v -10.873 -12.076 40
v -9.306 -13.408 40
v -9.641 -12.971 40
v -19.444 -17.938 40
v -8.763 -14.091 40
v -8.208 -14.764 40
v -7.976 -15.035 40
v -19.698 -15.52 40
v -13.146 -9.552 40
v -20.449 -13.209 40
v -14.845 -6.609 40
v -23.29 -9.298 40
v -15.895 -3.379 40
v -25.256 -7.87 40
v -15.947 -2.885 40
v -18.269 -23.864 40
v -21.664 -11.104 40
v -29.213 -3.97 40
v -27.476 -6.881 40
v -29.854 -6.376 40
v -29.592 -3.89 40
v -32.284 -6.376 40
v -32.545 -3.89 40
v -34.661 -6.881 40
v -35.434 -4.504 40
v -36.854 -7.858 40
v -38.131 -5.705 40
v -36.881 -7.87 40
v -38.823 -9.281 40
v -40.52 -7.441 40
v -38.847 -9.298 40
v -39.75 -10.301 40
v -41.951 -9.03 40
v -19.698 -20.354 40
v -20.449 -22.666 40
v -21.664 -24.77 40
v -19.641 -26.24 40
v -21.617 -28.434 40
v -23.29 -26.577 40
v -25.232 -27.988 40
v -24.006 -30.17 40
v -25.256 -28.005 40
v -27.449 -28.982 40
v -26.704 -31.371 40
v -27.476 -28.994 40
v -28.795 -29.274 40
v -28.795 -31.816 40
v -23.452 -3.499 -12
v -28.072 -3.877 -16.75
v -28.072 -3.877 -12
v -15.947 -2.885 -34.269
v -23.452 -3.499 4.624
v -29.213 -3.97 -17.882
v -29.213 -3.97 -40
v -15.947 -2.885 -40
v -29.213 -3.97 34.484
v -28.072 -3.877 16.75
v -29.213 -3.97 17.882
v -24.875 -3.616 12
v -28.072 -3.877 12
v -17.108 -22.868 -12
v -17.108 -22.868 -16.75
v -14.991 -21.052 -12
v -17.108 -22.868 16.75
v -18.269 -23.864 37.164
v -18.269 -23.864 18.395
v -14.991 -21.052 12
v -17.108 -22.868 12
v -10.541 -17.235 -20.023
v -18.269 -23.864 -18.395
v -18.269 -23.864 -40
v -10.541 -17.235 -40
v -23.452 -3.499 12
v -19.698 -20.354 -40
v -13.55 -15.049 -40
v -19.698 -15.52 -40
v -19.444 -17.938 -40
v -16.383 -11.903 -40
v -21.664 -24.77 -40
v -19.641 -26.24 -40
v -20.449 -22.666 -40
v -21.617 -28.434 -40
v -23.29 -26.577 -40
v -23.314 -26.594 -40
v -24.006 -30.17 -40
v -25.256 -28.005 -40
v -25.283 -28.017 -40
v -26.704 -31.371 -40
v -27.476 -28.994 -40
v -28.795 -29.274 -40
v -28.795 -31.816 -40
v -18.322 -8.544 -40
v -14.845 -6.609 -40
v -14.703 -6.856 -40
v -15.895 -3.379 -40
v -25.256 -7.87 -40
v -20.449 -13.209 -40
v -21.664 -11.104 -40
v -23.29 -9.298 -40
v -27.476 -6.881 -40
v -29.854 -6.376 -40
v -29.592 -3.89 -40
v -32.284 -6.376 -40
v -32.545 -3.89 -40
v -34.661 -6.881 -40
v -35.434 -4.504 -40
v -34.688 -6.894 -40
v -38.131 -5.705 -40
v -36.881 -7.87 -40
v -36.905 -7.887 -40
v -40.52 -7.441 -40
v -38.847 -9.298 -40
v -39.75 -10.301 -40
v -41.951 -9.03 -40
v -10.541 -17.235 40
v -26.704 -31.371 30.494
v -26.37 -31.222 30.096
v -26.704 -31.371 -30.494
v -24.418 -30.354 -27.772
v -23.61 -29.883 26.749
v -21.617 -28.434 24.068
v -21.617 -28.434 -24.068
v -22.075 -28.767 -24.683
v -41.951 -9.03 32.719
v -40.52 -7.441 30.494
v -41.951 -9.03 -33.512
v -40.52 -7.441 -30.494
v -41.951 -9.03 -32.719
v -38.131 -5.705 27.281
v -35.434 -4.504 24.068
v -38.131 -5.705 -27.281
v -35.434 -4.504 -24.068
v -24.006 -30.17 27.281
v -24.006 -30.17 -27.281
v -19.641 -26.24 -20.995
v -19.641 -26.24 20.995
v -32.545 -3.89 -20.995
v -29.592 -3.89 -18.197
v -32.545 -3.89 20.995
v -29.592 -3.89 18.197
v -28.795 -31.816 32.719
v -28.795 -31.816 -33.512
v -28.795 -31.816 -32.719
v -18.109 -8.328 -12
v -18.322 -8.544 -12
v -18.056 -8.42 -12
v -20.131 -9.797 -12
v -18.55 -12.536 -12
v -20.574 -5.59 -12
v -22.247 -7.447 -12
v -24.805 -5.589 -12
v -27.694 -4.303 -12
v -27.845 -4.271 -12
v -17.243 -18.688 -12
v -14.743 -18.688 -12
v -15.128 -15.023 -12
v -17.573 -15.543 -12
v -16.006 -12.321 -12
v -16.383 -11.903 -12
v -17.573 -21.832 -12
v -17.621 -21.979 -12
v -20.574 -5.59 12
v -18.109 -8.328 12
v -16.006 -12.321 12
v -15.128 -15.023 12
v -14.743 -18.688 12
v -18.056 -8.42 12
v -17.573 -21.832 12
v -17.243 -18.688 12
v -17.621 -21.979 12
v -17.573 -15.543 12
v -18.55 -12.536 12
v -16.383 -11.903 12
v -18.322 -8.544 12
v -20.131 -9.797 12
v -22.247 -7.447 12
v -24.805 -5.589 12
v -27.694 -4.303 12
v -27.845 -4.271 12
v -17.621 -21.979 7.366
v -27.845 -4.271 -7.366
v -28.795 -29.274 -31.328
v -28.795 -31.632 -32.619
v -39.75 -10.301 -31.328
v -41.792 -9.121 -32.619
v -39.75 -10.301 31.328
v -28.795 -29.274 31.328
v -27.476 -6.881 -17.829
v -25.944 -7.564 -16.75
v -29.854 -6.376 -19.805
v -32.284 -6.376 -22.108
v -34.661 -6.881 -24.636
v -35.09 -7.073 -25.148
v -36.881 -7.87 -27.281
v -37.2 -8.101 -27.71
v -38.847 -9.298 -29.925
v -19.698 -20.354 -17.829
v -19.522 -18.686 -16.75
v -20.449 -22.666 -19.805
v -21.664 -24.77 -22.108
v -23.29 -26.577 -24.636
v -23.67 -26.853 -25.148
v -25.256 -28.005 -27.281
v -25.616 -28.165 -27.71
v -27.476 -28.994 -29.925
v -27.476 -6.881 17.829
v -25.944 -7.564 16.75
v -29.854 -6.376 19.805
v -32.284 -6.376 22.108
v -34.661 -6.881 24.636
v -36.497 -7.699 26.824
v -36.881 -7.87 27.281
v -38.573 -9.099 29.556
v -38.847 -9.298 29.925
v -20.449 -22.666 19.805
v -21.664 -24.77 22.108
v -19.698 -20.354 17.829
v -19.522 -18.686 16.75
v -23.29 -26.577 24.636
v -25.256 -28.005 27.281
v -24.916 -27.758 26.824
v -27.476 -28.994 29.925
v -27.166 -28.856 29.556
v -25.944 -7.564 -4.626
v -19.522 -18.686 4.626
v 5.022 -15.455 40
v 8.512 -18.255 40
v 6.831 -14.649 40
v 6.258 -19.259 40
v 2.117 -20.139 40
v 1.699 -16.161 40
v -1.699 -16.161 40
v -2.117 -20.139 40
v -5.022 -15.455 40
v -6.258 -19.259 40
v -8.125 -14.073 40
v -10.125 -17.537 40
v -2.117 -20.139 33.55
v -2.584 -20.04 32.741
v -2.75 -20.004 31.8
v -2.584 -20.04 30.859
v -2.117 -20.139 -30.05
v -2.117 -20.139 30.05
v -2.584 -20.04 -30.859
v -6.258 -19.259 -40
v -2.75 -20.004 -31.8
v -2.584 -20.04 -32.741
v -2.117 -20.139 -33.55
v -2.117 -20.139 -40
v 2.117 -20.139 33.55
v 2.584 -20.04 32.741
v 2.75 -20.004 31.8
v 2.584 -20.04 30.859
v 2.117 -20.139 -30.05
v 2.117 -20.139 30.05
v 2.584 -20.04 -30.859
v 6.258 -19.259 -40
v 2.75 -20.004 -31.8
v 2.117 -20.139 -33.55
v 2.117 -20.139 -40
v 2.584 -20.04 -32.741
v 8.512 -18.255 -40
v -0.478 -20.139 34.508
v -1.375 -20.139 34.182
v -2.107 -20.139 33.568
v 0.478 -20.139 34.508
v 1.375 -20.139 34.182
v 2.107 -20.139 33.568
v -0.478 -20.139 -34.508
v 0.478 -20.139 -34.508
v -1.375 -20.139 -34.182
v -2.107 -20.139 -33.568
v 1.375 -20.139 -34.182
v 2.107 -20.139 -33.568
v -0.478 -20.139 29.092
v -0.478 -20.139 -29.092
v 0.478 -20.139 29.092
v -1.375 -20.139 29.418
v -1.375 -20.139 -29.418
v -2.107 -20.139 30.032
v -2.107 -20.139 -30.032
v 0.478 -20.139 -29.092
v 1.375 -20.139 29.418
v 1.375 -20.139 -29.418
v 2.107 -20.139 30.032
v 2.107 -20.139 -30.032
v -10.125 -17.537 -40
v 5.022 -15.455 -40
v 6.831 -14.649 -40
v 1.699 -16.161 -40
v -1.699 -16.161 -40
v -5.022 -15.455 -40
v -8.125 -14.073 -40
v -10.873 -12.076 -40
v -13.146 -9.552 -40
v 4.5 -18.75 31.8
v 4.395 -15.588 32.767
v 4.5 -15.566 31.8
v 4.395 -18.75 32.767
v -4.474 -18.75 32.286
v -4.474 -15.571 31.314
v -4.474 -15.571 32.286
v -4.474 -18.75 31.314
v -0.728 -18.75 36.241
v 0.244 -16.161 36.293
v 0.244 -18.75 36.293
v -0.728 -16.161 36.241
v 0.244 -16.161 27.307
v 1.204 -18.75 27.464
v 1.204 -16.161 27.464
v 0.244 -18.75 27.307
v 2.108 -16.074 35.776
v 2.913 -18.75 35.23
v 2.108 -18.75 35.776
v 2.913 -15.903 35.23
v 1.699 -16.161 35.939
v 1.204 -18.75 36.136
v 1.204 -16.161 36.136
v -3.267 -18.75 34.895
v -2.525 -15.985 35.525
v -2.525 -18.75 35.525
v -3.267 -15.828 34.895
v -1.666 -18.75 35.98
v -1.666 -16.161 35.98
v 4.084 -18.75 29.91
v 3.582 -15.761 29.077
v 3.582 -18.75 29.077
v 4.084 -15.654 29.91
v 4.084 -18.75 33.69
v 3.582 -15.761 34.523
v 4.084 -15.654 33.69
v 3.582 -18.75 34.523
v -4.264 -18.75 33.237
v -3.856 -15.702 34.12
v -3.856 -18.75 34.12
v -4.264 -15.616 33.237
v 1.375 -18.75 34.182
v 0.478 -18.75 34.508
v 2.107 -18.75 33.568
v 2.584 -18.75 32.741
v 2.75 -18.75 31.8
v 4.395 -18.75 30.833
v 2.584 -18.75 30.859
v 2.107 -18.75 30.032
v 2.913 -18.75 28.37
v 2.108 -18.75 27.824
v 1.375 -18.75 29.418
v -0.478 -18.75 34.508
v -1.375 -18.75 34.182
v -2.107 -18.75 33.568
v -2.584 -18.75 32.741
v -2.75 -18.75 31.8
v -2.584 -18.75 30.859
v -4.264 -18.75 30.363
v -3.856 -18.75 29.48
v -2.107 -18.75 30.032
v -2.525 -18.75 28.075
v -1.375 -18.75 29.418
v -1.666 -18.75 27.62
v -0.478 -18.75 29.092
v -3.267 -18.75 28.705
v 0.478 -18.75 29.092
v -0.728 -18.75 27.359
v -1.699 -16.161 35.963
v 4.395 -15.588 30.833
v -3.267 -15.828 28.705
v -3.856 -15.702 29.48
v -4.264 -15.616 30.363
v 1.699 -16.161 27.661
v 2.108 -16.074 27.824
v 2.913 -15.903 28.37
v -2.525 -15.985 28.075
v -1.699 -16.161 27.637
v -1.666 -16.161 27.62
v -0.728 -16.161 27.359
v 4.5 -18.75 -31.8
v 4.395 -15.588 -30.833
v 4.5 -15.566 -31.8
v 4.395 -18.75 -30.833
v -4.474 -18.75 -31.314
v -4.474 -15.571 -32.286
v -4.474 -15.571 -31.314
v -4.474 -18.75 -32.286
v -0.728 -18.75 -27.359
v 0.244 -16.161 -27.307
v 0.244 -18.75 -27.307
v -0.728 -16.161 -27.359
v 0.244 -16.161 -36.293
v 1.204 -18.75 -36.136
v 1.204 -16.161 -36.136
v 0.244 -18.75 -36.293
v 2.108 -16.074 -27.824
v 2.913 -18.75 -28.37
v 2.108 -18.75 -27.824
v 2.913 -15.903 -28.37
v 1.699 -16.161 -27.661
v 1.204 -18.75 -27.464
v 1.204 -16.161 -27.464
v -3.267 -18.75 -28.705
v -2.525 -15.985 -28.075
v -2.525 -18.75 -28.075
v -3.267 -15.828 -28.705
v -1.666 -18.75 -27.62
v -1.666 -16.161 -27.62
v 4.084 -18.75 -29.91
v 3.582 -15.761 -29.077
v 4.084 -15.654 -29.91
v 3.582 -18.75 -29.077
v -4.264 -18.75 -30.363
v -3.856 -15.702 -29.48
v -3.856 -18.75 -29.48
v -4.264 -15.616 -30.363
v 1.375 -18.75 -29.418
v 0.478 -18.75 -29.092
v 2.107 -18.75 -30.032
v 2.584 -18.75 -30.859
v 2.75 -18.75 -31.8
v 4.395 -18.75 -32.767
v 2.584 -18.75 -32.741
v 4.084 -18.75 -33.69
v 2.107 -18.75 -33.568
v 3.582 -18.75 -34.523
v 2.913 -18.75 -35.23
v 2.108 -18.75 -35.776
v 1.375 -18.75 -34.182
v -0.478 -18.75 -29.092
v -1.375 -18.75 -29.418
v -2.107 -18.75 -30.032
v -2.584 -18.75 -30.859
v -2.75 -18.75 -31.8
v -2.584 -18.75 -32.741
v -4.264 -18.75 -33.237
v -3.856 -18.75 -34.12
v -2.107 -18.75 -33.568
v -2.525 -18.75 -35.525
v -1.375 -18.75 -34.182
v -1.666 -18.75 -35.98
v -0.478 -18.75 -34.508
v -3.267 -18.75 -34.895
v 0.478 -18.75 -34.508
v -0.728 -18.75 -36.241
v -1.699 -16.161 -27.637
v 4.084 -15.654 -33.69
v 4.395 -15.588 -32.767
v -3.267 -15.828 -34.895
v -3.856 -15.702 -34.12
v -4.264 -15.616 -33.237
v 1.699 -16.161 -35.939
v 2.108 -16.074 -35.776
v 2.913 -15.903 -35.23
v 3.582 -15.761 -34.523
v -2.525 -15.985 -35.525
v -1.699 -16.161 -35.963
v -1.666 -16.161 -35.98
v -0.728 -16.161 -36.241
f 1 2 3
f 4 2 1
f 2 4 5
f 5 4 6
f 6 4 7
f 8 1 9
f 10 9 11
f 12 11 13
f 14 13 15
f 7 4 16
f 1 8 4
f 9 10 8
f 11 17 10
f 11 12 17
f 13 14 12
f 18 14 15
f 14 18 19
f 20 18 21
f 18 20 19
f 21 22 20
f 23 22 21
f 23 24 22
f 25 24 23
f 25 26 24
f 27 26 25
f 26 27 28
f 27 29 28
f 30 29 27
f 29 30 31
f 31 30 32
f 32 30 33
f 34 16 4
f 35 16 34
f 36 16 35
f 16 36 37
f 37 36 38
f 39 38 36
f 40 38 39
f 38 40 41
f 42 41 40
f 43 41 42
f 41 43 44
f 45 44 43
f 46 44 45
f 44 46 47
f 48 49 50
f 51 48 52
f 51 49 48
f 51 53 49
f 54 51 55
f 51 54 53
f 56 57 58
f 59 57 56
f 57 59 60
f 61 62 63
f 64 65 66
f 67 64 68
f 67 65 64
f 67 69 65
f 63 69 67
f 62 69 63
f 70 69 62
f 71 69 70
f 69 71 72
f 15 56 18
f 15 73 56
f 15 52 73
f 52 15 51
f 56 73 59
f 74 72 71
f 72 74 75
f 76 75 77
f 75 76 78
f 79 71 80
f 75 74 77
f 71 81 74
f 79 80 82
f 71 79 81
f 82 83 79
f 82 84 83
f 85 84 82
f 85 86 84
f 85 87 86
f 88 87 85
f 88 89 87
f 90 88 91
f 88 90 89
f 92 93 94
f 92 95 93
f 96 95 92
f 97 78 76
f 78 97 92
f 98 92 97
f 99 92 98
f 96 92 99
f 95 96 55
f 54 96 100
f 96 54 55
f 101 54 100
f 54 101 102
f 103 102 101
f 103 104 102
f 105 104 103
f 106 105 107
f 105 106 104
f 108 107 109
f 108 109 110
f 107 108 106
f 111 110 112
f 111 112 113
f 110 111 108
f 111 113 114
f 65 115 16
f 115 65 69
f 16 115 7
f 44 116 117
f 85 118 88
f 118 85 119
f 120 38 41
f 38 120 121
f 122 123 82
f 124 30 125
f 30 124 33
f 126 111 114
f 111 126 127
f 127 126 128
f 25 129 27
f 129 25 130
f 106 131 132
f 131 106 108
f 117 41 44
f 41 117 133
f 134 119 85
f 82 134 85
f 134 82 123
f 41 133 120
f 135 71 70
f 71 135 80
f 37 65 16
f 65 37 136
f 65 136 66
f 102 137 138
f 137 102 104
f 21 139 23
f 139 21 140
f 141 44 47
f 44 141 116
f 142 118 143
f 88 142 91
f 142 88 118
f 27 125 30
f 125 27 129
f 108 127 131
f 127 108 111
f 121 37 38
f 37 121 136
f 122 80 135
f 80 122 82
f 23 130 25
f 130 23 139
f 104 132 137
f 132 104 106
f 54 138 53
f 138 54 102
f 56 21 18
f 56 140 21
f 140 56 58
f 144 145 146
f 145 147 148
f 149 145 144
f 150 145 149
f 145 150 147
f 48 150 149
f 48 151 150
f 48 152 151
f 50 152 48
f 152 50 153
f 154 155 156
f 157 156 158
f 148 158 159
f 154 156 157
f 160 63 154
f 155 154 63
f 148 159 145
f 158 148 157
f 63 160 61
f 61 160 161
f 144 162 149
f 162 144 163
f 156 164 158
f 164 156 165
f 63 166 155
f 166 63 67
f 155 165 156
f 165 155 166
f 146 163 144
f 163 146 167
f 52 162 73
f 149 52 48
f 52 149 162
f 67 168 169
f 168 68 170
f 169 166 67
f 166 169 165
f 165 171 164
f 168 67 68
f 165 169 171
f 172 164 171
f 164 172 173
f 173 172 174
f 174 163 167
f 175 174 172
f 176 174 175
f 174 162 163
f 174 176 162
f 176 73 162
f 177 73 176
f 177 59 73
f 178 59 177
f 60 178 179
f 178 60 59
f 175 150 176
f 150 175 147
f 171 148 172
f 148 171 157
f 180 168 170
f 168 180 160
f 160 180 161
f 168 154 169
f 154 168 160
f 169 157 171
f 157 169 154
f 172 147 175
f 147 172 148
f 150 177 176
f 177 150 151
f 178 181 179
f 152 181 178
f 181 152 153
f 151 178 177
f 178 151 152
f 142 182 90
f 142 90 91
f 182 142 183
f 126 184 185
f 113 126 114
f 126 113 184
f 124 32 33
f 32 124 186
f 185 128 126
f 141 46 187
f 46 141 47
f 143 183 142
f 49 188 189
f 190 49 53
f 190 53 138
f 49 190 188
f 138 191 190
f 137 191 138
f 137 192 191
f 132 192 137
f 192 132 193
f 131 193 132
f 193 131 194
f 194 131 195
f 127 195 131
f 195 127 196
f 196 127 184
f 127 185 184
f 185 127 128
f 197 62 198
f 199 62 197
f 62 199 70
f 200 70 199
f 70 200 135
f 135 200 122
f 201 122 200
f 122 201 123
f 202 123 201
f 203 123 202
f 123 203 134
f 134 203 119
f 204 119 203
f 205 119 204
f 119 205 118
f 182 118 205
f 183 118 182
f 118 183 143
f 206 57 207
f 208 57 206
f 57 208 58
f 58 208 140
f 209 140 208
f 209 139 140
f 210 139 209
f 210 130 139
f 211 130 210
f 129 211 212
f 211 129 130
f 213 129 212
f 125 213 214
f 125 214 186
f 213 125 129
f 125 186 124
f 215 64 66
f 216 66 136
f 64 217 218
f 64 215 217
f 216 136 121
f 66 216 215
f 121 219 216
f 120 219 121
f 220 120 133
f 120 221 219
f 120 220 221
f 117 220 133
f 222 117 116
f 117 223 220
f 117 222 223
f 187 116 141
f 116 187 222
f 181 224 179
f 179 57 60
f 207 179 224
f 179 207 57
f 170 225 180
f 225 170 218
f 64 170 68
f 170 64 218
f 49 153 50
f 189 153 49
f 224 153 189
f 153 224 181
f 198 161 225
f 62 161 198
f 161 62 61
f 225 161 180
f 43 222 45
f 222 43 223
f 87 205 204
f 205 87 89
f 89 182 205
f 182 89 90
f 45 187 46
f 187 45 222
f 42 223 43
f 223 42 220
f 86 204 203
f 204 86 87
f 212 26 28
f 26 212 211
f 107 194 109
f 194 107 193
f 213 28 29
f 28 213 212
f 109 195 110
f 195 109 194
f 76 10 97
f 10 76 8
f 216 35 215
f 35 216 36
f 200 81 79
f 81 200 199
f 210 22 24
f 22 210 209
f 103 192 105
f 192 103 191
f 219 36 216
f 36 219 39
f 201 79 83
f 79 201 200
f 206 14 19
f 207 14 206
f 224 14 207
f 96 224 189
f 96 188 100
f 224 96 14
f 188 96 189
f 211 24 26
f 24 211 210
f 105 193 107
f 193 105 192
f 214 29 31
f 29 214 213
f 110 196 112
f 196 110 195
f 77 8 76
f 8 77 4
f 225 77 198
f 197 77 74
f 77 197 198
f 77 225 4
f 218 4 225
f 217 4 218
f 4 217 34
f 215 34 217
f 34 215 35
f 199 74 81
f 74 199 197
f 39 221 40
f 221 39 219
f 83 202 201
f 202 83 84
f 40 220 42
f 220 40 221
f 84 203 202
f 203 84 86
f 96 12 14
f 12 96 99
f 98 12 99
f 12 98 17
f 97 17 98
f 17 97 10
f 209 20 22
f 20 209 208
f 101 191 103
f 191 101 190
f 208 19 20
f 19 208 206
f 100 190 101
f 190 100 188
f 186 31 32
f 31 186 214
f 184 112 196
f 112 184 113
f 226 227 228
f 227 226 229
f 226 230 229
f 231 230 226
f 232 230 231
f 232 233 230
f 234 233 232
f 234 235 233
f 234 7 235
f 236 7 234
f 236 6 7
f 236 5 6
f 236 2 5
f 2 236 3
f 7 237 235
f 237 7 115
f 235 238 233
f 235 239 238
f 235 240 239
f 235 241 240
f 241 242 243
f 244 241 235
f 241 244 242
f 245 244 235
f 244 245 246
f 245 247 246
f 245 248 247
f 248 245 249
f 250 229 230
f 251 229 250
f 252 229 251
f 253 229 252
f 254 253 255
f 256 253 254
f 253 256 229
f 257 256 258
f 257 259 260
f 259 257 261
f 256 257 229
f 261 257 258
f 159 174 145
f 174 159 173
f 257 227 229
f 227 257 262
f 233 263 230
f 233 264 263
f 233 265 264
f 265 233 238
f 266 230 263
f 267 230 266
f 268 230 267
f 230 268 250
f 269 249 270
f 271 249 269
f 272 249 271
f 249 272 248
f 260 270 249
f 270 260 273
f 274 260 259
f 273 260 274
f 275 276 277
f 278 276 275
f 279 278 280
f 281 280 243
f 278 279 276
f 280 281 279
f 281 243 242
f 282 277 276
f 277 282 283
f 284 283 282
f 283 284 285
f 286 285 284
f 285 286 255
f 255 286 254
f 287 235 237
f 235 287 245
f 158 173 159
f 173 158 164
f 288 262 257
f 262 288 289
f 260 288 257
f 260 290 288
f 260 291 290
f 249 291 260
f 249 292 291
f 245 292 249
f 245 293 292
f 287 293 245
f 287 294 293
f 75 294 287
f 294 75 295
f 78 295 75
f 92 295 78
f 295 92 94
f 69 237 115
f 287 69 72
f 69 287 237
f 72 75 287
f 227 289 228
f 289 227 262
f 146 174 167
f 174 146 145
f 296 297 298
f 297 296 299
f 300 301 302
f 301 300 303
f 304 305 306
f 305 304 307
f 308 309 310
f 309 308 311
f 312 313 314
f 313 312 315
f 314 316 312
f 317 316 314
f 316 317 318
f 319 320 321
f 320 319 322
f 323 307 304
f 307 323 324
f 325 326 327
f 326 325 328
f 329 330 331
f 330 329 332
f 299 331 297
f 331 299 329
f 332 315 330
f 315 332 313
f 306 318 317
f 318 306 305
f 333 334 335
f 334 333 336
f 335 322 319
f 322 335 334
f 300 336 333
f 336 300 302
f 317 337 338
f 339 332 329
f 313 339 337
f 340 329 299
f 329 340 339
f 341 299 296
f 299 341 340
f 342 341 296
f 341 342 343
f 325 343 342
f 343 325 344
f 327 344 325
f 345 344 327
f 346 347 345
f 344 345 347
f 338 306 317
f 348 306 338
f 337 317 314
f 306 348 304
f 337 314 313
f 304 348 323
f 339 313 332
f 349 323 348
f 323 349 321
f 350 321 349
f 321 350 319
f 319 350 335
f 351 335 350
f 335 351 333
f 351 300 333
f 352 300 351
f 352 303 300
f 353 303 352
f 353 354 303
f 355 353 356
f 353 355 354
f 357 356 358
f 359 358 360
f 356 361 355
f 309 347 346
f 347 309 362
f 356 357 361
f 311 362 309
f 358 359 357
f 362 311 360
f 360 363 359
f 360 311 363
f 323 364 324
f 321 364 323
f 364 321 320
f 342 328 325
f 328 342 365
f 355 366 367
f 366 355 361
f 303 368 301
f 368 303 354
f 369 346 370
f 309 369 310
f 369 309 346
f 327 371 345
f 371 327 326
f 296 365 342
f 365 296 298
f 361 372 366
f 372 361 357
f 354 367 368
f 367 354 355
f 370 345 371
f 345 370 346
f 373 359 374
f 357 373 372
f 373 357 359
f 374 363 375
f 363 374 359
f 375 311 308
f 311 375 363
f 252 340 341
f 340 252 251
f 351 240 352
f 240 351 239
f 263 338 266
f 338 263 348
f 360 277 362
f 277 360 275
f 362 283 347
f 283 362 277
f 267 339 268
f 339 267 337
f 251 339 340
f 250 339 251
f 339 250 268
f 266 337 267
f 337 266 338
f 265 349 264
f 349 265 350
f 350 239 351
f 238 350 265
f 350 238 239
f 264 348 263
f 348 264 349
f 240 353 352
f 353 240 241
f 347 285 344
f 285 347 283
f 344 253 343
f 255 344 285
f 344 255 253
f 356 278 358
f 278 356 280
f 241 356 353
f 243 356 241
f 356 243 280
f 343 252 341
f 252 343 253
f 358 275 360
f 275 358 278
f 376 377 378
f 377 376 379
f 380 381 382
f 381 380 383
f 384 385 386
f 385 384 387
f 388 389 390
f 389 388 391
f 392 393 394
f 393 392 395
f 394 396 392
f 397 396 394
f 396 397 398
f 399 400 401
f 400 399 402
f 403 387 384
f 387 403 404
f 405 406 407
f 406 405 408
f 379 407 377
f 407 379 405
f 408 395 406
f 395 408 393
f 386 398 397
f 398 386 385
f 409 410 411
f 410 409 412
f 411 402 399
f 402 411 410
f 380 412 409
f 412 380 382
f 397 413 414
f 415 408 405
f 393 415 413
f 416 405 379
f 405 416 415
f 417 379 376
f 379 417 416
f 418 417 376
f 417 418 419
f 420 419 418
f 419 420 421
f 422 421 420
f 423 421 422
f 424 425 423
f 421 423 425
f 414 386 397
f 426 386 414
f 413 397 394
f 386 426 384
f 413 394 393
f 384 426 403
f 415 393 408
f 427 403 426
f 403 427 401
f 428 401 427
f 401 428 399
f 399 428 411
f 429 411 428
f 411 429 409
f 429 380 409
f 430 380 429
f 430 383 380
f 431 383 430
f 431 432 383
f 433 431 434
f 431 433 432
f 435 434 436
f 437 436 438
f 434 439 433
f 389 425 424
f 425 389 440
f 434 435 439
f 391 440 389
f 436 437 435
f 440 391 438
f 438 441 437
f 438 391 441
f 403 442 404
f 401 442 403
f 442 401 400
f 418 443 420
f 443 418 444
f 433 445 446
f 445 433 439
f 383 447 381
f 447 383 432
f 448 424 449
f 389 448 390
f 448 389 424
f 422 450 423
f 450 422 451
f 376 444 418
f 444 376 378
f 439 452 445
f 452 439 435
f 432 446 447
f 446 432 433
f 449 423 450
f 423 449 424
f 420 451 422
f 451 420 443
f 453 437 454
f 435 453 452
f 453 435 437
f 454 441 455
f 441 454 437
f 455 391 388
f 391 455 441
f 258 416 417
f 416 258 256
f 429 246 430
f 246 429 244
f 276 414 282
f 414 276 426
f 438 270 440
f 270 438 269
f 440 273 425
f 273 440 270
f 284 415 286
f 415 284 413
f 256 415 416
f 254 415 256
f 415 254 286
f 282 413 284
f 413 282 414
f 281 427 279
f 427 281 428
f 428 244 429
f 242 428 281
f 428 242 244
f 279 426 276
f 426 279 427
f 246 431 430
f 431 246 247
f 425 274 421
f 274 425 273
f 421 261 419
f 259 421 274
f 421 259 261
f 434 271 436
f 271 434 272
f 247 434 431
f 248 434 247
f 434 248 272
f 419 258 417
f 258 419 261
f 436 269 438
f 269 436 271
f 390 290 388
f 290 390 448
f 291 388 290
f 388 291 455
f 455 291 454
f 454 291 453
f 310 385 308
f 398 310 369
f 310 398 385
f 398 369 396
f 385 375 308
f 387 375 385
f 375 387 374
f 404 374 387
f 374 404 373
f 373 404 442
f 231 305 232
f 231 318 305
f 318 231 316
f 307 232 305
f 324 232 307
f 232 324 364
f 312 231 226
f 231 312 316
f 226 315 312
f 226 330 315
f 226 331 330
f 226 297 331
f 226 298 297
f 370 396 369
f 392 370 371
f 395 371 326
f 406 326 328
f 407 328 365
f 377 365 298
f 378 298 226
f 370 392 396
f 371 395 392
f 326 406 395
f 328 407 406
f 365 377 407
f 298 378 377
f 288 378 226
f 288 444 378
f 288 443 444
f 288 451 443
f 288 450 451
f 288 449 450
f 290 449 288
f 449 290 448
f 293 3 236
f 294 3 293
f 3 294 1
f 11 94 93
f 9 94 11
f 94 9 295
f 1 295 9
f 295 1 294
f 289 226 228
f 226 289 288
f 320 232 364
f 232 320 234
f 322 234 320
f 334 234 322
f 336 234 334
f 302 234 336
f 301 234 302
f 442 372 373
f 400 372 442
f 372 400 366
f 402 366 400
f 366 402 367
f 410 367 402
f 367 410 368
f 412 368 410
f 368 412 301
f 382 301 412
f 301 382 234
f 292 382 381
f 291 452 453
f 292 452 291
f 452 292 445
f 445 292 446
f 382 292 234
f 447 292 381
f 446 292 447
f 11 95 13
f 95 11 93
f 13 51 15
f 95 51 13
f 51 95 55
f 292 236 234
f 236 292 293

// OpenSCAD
use <BezierScad.scad>
$fs = 1;

len = 80;
pumpD = 23.25;
insertD = 10;
insertOffset = 72 - 8.4;
wid = 15;
hgt = 10;
downTubeD = 32.5;

difference() {
	union() {
		rotate([0,0,-60]) translate([0, -downTubeD/2 + 2,0]) rotate([90,0,0]) difference() {
			base();
			#translate([0,0,hgt+(pumpD/2)]) rotate([90,0,0]) cylinder(r=pumpD/2, h=len+2, center=true);
		}
		intersection() {
			cylinder(d=downTubeD + 8, h=len, center=true);
			rotate([0,0,205]) translate([0,0,-50]) cube([100, 100, 100], center=false);
		}

	}
	#downTube();
}

module downTube() {
	cylinder(d=downTubeD, h=100, center=true);
	rotate([90, 0, 0]) {
		translate([0, insertOffset/2, 0]) {
			cylinder(d=9, h=downTubeD + 5, center=true);
			cylinder(d=5.5, h=downTubeD + 20, center=true);
		}
		translate([0, -insertOffset/2, 0]) {
			cylinder(d=9, h=downTubeD + 5, center=true);
			cylinder(d=5.5, h=downTubeD + 20, center=true);
		}
	}

}
module base() {
	difference() {
		union() {
			rotate([90,0,0])
				linear_extrude(len, center=true) polygon(
					points=[
					[-insertD/2, 0],
					[insertD/2+4, 0],
					[pumpD/2, hgt+4],
					[-pumpD/2, hgt+4],
					]
				);
			translate([0,0,hgt+(pumpD/2)]) rotate([90,0,0]) cylinder(r=2.5+pumpD/2, h=len, center=true);
		}
	translate([0,0,14+hgt+(pumpD/2)]) rotate([90,0,0]) rotate([0,0,360/12]) cylinder(r=5+pumpD/2, h=len+1, center=true, $fn=6);
	rotate([90,0,90]) linear_extrude(pumpD*2, center=true) polygon(points=[
		[-len/2 + pumpD,hgt+2],
		[len/2 - pumpD,hgt+2],
		[len/2, hgt+pumpD],
		[-len/2, hgt+pumpD],
	]);
	translate([0,0,hgt+1.5+pumpD/2])
		rotate([90,0,0]) {
			difference() {
				cylinder(r=6+pumpD/2, h=24, center=true);
				cylinder(r=3.5+pumpD/2, h=25, center=true);
			}
		}
	translate([0,0,-50 + 1]) rotate([90,0,0]) cylinder(r=50, h = len+2, center=true, $fn=360);
	}
}

module screwCutout(yOffset) {
	translate([0,yOffset,0]) {
		translate([0,0,hgt/2]) cylinder(r=5/2, h=hgt+2, center=true);
		translate([0,0,-0.1]) cylinder(r=(insertD/2)/cos(180/8), h=2, center=false, $fn=8);
		translate([0,0,6]) cylinder(r=(10/2)/cos(180/8), h=10, center=false, $fn=8);
	}
}
